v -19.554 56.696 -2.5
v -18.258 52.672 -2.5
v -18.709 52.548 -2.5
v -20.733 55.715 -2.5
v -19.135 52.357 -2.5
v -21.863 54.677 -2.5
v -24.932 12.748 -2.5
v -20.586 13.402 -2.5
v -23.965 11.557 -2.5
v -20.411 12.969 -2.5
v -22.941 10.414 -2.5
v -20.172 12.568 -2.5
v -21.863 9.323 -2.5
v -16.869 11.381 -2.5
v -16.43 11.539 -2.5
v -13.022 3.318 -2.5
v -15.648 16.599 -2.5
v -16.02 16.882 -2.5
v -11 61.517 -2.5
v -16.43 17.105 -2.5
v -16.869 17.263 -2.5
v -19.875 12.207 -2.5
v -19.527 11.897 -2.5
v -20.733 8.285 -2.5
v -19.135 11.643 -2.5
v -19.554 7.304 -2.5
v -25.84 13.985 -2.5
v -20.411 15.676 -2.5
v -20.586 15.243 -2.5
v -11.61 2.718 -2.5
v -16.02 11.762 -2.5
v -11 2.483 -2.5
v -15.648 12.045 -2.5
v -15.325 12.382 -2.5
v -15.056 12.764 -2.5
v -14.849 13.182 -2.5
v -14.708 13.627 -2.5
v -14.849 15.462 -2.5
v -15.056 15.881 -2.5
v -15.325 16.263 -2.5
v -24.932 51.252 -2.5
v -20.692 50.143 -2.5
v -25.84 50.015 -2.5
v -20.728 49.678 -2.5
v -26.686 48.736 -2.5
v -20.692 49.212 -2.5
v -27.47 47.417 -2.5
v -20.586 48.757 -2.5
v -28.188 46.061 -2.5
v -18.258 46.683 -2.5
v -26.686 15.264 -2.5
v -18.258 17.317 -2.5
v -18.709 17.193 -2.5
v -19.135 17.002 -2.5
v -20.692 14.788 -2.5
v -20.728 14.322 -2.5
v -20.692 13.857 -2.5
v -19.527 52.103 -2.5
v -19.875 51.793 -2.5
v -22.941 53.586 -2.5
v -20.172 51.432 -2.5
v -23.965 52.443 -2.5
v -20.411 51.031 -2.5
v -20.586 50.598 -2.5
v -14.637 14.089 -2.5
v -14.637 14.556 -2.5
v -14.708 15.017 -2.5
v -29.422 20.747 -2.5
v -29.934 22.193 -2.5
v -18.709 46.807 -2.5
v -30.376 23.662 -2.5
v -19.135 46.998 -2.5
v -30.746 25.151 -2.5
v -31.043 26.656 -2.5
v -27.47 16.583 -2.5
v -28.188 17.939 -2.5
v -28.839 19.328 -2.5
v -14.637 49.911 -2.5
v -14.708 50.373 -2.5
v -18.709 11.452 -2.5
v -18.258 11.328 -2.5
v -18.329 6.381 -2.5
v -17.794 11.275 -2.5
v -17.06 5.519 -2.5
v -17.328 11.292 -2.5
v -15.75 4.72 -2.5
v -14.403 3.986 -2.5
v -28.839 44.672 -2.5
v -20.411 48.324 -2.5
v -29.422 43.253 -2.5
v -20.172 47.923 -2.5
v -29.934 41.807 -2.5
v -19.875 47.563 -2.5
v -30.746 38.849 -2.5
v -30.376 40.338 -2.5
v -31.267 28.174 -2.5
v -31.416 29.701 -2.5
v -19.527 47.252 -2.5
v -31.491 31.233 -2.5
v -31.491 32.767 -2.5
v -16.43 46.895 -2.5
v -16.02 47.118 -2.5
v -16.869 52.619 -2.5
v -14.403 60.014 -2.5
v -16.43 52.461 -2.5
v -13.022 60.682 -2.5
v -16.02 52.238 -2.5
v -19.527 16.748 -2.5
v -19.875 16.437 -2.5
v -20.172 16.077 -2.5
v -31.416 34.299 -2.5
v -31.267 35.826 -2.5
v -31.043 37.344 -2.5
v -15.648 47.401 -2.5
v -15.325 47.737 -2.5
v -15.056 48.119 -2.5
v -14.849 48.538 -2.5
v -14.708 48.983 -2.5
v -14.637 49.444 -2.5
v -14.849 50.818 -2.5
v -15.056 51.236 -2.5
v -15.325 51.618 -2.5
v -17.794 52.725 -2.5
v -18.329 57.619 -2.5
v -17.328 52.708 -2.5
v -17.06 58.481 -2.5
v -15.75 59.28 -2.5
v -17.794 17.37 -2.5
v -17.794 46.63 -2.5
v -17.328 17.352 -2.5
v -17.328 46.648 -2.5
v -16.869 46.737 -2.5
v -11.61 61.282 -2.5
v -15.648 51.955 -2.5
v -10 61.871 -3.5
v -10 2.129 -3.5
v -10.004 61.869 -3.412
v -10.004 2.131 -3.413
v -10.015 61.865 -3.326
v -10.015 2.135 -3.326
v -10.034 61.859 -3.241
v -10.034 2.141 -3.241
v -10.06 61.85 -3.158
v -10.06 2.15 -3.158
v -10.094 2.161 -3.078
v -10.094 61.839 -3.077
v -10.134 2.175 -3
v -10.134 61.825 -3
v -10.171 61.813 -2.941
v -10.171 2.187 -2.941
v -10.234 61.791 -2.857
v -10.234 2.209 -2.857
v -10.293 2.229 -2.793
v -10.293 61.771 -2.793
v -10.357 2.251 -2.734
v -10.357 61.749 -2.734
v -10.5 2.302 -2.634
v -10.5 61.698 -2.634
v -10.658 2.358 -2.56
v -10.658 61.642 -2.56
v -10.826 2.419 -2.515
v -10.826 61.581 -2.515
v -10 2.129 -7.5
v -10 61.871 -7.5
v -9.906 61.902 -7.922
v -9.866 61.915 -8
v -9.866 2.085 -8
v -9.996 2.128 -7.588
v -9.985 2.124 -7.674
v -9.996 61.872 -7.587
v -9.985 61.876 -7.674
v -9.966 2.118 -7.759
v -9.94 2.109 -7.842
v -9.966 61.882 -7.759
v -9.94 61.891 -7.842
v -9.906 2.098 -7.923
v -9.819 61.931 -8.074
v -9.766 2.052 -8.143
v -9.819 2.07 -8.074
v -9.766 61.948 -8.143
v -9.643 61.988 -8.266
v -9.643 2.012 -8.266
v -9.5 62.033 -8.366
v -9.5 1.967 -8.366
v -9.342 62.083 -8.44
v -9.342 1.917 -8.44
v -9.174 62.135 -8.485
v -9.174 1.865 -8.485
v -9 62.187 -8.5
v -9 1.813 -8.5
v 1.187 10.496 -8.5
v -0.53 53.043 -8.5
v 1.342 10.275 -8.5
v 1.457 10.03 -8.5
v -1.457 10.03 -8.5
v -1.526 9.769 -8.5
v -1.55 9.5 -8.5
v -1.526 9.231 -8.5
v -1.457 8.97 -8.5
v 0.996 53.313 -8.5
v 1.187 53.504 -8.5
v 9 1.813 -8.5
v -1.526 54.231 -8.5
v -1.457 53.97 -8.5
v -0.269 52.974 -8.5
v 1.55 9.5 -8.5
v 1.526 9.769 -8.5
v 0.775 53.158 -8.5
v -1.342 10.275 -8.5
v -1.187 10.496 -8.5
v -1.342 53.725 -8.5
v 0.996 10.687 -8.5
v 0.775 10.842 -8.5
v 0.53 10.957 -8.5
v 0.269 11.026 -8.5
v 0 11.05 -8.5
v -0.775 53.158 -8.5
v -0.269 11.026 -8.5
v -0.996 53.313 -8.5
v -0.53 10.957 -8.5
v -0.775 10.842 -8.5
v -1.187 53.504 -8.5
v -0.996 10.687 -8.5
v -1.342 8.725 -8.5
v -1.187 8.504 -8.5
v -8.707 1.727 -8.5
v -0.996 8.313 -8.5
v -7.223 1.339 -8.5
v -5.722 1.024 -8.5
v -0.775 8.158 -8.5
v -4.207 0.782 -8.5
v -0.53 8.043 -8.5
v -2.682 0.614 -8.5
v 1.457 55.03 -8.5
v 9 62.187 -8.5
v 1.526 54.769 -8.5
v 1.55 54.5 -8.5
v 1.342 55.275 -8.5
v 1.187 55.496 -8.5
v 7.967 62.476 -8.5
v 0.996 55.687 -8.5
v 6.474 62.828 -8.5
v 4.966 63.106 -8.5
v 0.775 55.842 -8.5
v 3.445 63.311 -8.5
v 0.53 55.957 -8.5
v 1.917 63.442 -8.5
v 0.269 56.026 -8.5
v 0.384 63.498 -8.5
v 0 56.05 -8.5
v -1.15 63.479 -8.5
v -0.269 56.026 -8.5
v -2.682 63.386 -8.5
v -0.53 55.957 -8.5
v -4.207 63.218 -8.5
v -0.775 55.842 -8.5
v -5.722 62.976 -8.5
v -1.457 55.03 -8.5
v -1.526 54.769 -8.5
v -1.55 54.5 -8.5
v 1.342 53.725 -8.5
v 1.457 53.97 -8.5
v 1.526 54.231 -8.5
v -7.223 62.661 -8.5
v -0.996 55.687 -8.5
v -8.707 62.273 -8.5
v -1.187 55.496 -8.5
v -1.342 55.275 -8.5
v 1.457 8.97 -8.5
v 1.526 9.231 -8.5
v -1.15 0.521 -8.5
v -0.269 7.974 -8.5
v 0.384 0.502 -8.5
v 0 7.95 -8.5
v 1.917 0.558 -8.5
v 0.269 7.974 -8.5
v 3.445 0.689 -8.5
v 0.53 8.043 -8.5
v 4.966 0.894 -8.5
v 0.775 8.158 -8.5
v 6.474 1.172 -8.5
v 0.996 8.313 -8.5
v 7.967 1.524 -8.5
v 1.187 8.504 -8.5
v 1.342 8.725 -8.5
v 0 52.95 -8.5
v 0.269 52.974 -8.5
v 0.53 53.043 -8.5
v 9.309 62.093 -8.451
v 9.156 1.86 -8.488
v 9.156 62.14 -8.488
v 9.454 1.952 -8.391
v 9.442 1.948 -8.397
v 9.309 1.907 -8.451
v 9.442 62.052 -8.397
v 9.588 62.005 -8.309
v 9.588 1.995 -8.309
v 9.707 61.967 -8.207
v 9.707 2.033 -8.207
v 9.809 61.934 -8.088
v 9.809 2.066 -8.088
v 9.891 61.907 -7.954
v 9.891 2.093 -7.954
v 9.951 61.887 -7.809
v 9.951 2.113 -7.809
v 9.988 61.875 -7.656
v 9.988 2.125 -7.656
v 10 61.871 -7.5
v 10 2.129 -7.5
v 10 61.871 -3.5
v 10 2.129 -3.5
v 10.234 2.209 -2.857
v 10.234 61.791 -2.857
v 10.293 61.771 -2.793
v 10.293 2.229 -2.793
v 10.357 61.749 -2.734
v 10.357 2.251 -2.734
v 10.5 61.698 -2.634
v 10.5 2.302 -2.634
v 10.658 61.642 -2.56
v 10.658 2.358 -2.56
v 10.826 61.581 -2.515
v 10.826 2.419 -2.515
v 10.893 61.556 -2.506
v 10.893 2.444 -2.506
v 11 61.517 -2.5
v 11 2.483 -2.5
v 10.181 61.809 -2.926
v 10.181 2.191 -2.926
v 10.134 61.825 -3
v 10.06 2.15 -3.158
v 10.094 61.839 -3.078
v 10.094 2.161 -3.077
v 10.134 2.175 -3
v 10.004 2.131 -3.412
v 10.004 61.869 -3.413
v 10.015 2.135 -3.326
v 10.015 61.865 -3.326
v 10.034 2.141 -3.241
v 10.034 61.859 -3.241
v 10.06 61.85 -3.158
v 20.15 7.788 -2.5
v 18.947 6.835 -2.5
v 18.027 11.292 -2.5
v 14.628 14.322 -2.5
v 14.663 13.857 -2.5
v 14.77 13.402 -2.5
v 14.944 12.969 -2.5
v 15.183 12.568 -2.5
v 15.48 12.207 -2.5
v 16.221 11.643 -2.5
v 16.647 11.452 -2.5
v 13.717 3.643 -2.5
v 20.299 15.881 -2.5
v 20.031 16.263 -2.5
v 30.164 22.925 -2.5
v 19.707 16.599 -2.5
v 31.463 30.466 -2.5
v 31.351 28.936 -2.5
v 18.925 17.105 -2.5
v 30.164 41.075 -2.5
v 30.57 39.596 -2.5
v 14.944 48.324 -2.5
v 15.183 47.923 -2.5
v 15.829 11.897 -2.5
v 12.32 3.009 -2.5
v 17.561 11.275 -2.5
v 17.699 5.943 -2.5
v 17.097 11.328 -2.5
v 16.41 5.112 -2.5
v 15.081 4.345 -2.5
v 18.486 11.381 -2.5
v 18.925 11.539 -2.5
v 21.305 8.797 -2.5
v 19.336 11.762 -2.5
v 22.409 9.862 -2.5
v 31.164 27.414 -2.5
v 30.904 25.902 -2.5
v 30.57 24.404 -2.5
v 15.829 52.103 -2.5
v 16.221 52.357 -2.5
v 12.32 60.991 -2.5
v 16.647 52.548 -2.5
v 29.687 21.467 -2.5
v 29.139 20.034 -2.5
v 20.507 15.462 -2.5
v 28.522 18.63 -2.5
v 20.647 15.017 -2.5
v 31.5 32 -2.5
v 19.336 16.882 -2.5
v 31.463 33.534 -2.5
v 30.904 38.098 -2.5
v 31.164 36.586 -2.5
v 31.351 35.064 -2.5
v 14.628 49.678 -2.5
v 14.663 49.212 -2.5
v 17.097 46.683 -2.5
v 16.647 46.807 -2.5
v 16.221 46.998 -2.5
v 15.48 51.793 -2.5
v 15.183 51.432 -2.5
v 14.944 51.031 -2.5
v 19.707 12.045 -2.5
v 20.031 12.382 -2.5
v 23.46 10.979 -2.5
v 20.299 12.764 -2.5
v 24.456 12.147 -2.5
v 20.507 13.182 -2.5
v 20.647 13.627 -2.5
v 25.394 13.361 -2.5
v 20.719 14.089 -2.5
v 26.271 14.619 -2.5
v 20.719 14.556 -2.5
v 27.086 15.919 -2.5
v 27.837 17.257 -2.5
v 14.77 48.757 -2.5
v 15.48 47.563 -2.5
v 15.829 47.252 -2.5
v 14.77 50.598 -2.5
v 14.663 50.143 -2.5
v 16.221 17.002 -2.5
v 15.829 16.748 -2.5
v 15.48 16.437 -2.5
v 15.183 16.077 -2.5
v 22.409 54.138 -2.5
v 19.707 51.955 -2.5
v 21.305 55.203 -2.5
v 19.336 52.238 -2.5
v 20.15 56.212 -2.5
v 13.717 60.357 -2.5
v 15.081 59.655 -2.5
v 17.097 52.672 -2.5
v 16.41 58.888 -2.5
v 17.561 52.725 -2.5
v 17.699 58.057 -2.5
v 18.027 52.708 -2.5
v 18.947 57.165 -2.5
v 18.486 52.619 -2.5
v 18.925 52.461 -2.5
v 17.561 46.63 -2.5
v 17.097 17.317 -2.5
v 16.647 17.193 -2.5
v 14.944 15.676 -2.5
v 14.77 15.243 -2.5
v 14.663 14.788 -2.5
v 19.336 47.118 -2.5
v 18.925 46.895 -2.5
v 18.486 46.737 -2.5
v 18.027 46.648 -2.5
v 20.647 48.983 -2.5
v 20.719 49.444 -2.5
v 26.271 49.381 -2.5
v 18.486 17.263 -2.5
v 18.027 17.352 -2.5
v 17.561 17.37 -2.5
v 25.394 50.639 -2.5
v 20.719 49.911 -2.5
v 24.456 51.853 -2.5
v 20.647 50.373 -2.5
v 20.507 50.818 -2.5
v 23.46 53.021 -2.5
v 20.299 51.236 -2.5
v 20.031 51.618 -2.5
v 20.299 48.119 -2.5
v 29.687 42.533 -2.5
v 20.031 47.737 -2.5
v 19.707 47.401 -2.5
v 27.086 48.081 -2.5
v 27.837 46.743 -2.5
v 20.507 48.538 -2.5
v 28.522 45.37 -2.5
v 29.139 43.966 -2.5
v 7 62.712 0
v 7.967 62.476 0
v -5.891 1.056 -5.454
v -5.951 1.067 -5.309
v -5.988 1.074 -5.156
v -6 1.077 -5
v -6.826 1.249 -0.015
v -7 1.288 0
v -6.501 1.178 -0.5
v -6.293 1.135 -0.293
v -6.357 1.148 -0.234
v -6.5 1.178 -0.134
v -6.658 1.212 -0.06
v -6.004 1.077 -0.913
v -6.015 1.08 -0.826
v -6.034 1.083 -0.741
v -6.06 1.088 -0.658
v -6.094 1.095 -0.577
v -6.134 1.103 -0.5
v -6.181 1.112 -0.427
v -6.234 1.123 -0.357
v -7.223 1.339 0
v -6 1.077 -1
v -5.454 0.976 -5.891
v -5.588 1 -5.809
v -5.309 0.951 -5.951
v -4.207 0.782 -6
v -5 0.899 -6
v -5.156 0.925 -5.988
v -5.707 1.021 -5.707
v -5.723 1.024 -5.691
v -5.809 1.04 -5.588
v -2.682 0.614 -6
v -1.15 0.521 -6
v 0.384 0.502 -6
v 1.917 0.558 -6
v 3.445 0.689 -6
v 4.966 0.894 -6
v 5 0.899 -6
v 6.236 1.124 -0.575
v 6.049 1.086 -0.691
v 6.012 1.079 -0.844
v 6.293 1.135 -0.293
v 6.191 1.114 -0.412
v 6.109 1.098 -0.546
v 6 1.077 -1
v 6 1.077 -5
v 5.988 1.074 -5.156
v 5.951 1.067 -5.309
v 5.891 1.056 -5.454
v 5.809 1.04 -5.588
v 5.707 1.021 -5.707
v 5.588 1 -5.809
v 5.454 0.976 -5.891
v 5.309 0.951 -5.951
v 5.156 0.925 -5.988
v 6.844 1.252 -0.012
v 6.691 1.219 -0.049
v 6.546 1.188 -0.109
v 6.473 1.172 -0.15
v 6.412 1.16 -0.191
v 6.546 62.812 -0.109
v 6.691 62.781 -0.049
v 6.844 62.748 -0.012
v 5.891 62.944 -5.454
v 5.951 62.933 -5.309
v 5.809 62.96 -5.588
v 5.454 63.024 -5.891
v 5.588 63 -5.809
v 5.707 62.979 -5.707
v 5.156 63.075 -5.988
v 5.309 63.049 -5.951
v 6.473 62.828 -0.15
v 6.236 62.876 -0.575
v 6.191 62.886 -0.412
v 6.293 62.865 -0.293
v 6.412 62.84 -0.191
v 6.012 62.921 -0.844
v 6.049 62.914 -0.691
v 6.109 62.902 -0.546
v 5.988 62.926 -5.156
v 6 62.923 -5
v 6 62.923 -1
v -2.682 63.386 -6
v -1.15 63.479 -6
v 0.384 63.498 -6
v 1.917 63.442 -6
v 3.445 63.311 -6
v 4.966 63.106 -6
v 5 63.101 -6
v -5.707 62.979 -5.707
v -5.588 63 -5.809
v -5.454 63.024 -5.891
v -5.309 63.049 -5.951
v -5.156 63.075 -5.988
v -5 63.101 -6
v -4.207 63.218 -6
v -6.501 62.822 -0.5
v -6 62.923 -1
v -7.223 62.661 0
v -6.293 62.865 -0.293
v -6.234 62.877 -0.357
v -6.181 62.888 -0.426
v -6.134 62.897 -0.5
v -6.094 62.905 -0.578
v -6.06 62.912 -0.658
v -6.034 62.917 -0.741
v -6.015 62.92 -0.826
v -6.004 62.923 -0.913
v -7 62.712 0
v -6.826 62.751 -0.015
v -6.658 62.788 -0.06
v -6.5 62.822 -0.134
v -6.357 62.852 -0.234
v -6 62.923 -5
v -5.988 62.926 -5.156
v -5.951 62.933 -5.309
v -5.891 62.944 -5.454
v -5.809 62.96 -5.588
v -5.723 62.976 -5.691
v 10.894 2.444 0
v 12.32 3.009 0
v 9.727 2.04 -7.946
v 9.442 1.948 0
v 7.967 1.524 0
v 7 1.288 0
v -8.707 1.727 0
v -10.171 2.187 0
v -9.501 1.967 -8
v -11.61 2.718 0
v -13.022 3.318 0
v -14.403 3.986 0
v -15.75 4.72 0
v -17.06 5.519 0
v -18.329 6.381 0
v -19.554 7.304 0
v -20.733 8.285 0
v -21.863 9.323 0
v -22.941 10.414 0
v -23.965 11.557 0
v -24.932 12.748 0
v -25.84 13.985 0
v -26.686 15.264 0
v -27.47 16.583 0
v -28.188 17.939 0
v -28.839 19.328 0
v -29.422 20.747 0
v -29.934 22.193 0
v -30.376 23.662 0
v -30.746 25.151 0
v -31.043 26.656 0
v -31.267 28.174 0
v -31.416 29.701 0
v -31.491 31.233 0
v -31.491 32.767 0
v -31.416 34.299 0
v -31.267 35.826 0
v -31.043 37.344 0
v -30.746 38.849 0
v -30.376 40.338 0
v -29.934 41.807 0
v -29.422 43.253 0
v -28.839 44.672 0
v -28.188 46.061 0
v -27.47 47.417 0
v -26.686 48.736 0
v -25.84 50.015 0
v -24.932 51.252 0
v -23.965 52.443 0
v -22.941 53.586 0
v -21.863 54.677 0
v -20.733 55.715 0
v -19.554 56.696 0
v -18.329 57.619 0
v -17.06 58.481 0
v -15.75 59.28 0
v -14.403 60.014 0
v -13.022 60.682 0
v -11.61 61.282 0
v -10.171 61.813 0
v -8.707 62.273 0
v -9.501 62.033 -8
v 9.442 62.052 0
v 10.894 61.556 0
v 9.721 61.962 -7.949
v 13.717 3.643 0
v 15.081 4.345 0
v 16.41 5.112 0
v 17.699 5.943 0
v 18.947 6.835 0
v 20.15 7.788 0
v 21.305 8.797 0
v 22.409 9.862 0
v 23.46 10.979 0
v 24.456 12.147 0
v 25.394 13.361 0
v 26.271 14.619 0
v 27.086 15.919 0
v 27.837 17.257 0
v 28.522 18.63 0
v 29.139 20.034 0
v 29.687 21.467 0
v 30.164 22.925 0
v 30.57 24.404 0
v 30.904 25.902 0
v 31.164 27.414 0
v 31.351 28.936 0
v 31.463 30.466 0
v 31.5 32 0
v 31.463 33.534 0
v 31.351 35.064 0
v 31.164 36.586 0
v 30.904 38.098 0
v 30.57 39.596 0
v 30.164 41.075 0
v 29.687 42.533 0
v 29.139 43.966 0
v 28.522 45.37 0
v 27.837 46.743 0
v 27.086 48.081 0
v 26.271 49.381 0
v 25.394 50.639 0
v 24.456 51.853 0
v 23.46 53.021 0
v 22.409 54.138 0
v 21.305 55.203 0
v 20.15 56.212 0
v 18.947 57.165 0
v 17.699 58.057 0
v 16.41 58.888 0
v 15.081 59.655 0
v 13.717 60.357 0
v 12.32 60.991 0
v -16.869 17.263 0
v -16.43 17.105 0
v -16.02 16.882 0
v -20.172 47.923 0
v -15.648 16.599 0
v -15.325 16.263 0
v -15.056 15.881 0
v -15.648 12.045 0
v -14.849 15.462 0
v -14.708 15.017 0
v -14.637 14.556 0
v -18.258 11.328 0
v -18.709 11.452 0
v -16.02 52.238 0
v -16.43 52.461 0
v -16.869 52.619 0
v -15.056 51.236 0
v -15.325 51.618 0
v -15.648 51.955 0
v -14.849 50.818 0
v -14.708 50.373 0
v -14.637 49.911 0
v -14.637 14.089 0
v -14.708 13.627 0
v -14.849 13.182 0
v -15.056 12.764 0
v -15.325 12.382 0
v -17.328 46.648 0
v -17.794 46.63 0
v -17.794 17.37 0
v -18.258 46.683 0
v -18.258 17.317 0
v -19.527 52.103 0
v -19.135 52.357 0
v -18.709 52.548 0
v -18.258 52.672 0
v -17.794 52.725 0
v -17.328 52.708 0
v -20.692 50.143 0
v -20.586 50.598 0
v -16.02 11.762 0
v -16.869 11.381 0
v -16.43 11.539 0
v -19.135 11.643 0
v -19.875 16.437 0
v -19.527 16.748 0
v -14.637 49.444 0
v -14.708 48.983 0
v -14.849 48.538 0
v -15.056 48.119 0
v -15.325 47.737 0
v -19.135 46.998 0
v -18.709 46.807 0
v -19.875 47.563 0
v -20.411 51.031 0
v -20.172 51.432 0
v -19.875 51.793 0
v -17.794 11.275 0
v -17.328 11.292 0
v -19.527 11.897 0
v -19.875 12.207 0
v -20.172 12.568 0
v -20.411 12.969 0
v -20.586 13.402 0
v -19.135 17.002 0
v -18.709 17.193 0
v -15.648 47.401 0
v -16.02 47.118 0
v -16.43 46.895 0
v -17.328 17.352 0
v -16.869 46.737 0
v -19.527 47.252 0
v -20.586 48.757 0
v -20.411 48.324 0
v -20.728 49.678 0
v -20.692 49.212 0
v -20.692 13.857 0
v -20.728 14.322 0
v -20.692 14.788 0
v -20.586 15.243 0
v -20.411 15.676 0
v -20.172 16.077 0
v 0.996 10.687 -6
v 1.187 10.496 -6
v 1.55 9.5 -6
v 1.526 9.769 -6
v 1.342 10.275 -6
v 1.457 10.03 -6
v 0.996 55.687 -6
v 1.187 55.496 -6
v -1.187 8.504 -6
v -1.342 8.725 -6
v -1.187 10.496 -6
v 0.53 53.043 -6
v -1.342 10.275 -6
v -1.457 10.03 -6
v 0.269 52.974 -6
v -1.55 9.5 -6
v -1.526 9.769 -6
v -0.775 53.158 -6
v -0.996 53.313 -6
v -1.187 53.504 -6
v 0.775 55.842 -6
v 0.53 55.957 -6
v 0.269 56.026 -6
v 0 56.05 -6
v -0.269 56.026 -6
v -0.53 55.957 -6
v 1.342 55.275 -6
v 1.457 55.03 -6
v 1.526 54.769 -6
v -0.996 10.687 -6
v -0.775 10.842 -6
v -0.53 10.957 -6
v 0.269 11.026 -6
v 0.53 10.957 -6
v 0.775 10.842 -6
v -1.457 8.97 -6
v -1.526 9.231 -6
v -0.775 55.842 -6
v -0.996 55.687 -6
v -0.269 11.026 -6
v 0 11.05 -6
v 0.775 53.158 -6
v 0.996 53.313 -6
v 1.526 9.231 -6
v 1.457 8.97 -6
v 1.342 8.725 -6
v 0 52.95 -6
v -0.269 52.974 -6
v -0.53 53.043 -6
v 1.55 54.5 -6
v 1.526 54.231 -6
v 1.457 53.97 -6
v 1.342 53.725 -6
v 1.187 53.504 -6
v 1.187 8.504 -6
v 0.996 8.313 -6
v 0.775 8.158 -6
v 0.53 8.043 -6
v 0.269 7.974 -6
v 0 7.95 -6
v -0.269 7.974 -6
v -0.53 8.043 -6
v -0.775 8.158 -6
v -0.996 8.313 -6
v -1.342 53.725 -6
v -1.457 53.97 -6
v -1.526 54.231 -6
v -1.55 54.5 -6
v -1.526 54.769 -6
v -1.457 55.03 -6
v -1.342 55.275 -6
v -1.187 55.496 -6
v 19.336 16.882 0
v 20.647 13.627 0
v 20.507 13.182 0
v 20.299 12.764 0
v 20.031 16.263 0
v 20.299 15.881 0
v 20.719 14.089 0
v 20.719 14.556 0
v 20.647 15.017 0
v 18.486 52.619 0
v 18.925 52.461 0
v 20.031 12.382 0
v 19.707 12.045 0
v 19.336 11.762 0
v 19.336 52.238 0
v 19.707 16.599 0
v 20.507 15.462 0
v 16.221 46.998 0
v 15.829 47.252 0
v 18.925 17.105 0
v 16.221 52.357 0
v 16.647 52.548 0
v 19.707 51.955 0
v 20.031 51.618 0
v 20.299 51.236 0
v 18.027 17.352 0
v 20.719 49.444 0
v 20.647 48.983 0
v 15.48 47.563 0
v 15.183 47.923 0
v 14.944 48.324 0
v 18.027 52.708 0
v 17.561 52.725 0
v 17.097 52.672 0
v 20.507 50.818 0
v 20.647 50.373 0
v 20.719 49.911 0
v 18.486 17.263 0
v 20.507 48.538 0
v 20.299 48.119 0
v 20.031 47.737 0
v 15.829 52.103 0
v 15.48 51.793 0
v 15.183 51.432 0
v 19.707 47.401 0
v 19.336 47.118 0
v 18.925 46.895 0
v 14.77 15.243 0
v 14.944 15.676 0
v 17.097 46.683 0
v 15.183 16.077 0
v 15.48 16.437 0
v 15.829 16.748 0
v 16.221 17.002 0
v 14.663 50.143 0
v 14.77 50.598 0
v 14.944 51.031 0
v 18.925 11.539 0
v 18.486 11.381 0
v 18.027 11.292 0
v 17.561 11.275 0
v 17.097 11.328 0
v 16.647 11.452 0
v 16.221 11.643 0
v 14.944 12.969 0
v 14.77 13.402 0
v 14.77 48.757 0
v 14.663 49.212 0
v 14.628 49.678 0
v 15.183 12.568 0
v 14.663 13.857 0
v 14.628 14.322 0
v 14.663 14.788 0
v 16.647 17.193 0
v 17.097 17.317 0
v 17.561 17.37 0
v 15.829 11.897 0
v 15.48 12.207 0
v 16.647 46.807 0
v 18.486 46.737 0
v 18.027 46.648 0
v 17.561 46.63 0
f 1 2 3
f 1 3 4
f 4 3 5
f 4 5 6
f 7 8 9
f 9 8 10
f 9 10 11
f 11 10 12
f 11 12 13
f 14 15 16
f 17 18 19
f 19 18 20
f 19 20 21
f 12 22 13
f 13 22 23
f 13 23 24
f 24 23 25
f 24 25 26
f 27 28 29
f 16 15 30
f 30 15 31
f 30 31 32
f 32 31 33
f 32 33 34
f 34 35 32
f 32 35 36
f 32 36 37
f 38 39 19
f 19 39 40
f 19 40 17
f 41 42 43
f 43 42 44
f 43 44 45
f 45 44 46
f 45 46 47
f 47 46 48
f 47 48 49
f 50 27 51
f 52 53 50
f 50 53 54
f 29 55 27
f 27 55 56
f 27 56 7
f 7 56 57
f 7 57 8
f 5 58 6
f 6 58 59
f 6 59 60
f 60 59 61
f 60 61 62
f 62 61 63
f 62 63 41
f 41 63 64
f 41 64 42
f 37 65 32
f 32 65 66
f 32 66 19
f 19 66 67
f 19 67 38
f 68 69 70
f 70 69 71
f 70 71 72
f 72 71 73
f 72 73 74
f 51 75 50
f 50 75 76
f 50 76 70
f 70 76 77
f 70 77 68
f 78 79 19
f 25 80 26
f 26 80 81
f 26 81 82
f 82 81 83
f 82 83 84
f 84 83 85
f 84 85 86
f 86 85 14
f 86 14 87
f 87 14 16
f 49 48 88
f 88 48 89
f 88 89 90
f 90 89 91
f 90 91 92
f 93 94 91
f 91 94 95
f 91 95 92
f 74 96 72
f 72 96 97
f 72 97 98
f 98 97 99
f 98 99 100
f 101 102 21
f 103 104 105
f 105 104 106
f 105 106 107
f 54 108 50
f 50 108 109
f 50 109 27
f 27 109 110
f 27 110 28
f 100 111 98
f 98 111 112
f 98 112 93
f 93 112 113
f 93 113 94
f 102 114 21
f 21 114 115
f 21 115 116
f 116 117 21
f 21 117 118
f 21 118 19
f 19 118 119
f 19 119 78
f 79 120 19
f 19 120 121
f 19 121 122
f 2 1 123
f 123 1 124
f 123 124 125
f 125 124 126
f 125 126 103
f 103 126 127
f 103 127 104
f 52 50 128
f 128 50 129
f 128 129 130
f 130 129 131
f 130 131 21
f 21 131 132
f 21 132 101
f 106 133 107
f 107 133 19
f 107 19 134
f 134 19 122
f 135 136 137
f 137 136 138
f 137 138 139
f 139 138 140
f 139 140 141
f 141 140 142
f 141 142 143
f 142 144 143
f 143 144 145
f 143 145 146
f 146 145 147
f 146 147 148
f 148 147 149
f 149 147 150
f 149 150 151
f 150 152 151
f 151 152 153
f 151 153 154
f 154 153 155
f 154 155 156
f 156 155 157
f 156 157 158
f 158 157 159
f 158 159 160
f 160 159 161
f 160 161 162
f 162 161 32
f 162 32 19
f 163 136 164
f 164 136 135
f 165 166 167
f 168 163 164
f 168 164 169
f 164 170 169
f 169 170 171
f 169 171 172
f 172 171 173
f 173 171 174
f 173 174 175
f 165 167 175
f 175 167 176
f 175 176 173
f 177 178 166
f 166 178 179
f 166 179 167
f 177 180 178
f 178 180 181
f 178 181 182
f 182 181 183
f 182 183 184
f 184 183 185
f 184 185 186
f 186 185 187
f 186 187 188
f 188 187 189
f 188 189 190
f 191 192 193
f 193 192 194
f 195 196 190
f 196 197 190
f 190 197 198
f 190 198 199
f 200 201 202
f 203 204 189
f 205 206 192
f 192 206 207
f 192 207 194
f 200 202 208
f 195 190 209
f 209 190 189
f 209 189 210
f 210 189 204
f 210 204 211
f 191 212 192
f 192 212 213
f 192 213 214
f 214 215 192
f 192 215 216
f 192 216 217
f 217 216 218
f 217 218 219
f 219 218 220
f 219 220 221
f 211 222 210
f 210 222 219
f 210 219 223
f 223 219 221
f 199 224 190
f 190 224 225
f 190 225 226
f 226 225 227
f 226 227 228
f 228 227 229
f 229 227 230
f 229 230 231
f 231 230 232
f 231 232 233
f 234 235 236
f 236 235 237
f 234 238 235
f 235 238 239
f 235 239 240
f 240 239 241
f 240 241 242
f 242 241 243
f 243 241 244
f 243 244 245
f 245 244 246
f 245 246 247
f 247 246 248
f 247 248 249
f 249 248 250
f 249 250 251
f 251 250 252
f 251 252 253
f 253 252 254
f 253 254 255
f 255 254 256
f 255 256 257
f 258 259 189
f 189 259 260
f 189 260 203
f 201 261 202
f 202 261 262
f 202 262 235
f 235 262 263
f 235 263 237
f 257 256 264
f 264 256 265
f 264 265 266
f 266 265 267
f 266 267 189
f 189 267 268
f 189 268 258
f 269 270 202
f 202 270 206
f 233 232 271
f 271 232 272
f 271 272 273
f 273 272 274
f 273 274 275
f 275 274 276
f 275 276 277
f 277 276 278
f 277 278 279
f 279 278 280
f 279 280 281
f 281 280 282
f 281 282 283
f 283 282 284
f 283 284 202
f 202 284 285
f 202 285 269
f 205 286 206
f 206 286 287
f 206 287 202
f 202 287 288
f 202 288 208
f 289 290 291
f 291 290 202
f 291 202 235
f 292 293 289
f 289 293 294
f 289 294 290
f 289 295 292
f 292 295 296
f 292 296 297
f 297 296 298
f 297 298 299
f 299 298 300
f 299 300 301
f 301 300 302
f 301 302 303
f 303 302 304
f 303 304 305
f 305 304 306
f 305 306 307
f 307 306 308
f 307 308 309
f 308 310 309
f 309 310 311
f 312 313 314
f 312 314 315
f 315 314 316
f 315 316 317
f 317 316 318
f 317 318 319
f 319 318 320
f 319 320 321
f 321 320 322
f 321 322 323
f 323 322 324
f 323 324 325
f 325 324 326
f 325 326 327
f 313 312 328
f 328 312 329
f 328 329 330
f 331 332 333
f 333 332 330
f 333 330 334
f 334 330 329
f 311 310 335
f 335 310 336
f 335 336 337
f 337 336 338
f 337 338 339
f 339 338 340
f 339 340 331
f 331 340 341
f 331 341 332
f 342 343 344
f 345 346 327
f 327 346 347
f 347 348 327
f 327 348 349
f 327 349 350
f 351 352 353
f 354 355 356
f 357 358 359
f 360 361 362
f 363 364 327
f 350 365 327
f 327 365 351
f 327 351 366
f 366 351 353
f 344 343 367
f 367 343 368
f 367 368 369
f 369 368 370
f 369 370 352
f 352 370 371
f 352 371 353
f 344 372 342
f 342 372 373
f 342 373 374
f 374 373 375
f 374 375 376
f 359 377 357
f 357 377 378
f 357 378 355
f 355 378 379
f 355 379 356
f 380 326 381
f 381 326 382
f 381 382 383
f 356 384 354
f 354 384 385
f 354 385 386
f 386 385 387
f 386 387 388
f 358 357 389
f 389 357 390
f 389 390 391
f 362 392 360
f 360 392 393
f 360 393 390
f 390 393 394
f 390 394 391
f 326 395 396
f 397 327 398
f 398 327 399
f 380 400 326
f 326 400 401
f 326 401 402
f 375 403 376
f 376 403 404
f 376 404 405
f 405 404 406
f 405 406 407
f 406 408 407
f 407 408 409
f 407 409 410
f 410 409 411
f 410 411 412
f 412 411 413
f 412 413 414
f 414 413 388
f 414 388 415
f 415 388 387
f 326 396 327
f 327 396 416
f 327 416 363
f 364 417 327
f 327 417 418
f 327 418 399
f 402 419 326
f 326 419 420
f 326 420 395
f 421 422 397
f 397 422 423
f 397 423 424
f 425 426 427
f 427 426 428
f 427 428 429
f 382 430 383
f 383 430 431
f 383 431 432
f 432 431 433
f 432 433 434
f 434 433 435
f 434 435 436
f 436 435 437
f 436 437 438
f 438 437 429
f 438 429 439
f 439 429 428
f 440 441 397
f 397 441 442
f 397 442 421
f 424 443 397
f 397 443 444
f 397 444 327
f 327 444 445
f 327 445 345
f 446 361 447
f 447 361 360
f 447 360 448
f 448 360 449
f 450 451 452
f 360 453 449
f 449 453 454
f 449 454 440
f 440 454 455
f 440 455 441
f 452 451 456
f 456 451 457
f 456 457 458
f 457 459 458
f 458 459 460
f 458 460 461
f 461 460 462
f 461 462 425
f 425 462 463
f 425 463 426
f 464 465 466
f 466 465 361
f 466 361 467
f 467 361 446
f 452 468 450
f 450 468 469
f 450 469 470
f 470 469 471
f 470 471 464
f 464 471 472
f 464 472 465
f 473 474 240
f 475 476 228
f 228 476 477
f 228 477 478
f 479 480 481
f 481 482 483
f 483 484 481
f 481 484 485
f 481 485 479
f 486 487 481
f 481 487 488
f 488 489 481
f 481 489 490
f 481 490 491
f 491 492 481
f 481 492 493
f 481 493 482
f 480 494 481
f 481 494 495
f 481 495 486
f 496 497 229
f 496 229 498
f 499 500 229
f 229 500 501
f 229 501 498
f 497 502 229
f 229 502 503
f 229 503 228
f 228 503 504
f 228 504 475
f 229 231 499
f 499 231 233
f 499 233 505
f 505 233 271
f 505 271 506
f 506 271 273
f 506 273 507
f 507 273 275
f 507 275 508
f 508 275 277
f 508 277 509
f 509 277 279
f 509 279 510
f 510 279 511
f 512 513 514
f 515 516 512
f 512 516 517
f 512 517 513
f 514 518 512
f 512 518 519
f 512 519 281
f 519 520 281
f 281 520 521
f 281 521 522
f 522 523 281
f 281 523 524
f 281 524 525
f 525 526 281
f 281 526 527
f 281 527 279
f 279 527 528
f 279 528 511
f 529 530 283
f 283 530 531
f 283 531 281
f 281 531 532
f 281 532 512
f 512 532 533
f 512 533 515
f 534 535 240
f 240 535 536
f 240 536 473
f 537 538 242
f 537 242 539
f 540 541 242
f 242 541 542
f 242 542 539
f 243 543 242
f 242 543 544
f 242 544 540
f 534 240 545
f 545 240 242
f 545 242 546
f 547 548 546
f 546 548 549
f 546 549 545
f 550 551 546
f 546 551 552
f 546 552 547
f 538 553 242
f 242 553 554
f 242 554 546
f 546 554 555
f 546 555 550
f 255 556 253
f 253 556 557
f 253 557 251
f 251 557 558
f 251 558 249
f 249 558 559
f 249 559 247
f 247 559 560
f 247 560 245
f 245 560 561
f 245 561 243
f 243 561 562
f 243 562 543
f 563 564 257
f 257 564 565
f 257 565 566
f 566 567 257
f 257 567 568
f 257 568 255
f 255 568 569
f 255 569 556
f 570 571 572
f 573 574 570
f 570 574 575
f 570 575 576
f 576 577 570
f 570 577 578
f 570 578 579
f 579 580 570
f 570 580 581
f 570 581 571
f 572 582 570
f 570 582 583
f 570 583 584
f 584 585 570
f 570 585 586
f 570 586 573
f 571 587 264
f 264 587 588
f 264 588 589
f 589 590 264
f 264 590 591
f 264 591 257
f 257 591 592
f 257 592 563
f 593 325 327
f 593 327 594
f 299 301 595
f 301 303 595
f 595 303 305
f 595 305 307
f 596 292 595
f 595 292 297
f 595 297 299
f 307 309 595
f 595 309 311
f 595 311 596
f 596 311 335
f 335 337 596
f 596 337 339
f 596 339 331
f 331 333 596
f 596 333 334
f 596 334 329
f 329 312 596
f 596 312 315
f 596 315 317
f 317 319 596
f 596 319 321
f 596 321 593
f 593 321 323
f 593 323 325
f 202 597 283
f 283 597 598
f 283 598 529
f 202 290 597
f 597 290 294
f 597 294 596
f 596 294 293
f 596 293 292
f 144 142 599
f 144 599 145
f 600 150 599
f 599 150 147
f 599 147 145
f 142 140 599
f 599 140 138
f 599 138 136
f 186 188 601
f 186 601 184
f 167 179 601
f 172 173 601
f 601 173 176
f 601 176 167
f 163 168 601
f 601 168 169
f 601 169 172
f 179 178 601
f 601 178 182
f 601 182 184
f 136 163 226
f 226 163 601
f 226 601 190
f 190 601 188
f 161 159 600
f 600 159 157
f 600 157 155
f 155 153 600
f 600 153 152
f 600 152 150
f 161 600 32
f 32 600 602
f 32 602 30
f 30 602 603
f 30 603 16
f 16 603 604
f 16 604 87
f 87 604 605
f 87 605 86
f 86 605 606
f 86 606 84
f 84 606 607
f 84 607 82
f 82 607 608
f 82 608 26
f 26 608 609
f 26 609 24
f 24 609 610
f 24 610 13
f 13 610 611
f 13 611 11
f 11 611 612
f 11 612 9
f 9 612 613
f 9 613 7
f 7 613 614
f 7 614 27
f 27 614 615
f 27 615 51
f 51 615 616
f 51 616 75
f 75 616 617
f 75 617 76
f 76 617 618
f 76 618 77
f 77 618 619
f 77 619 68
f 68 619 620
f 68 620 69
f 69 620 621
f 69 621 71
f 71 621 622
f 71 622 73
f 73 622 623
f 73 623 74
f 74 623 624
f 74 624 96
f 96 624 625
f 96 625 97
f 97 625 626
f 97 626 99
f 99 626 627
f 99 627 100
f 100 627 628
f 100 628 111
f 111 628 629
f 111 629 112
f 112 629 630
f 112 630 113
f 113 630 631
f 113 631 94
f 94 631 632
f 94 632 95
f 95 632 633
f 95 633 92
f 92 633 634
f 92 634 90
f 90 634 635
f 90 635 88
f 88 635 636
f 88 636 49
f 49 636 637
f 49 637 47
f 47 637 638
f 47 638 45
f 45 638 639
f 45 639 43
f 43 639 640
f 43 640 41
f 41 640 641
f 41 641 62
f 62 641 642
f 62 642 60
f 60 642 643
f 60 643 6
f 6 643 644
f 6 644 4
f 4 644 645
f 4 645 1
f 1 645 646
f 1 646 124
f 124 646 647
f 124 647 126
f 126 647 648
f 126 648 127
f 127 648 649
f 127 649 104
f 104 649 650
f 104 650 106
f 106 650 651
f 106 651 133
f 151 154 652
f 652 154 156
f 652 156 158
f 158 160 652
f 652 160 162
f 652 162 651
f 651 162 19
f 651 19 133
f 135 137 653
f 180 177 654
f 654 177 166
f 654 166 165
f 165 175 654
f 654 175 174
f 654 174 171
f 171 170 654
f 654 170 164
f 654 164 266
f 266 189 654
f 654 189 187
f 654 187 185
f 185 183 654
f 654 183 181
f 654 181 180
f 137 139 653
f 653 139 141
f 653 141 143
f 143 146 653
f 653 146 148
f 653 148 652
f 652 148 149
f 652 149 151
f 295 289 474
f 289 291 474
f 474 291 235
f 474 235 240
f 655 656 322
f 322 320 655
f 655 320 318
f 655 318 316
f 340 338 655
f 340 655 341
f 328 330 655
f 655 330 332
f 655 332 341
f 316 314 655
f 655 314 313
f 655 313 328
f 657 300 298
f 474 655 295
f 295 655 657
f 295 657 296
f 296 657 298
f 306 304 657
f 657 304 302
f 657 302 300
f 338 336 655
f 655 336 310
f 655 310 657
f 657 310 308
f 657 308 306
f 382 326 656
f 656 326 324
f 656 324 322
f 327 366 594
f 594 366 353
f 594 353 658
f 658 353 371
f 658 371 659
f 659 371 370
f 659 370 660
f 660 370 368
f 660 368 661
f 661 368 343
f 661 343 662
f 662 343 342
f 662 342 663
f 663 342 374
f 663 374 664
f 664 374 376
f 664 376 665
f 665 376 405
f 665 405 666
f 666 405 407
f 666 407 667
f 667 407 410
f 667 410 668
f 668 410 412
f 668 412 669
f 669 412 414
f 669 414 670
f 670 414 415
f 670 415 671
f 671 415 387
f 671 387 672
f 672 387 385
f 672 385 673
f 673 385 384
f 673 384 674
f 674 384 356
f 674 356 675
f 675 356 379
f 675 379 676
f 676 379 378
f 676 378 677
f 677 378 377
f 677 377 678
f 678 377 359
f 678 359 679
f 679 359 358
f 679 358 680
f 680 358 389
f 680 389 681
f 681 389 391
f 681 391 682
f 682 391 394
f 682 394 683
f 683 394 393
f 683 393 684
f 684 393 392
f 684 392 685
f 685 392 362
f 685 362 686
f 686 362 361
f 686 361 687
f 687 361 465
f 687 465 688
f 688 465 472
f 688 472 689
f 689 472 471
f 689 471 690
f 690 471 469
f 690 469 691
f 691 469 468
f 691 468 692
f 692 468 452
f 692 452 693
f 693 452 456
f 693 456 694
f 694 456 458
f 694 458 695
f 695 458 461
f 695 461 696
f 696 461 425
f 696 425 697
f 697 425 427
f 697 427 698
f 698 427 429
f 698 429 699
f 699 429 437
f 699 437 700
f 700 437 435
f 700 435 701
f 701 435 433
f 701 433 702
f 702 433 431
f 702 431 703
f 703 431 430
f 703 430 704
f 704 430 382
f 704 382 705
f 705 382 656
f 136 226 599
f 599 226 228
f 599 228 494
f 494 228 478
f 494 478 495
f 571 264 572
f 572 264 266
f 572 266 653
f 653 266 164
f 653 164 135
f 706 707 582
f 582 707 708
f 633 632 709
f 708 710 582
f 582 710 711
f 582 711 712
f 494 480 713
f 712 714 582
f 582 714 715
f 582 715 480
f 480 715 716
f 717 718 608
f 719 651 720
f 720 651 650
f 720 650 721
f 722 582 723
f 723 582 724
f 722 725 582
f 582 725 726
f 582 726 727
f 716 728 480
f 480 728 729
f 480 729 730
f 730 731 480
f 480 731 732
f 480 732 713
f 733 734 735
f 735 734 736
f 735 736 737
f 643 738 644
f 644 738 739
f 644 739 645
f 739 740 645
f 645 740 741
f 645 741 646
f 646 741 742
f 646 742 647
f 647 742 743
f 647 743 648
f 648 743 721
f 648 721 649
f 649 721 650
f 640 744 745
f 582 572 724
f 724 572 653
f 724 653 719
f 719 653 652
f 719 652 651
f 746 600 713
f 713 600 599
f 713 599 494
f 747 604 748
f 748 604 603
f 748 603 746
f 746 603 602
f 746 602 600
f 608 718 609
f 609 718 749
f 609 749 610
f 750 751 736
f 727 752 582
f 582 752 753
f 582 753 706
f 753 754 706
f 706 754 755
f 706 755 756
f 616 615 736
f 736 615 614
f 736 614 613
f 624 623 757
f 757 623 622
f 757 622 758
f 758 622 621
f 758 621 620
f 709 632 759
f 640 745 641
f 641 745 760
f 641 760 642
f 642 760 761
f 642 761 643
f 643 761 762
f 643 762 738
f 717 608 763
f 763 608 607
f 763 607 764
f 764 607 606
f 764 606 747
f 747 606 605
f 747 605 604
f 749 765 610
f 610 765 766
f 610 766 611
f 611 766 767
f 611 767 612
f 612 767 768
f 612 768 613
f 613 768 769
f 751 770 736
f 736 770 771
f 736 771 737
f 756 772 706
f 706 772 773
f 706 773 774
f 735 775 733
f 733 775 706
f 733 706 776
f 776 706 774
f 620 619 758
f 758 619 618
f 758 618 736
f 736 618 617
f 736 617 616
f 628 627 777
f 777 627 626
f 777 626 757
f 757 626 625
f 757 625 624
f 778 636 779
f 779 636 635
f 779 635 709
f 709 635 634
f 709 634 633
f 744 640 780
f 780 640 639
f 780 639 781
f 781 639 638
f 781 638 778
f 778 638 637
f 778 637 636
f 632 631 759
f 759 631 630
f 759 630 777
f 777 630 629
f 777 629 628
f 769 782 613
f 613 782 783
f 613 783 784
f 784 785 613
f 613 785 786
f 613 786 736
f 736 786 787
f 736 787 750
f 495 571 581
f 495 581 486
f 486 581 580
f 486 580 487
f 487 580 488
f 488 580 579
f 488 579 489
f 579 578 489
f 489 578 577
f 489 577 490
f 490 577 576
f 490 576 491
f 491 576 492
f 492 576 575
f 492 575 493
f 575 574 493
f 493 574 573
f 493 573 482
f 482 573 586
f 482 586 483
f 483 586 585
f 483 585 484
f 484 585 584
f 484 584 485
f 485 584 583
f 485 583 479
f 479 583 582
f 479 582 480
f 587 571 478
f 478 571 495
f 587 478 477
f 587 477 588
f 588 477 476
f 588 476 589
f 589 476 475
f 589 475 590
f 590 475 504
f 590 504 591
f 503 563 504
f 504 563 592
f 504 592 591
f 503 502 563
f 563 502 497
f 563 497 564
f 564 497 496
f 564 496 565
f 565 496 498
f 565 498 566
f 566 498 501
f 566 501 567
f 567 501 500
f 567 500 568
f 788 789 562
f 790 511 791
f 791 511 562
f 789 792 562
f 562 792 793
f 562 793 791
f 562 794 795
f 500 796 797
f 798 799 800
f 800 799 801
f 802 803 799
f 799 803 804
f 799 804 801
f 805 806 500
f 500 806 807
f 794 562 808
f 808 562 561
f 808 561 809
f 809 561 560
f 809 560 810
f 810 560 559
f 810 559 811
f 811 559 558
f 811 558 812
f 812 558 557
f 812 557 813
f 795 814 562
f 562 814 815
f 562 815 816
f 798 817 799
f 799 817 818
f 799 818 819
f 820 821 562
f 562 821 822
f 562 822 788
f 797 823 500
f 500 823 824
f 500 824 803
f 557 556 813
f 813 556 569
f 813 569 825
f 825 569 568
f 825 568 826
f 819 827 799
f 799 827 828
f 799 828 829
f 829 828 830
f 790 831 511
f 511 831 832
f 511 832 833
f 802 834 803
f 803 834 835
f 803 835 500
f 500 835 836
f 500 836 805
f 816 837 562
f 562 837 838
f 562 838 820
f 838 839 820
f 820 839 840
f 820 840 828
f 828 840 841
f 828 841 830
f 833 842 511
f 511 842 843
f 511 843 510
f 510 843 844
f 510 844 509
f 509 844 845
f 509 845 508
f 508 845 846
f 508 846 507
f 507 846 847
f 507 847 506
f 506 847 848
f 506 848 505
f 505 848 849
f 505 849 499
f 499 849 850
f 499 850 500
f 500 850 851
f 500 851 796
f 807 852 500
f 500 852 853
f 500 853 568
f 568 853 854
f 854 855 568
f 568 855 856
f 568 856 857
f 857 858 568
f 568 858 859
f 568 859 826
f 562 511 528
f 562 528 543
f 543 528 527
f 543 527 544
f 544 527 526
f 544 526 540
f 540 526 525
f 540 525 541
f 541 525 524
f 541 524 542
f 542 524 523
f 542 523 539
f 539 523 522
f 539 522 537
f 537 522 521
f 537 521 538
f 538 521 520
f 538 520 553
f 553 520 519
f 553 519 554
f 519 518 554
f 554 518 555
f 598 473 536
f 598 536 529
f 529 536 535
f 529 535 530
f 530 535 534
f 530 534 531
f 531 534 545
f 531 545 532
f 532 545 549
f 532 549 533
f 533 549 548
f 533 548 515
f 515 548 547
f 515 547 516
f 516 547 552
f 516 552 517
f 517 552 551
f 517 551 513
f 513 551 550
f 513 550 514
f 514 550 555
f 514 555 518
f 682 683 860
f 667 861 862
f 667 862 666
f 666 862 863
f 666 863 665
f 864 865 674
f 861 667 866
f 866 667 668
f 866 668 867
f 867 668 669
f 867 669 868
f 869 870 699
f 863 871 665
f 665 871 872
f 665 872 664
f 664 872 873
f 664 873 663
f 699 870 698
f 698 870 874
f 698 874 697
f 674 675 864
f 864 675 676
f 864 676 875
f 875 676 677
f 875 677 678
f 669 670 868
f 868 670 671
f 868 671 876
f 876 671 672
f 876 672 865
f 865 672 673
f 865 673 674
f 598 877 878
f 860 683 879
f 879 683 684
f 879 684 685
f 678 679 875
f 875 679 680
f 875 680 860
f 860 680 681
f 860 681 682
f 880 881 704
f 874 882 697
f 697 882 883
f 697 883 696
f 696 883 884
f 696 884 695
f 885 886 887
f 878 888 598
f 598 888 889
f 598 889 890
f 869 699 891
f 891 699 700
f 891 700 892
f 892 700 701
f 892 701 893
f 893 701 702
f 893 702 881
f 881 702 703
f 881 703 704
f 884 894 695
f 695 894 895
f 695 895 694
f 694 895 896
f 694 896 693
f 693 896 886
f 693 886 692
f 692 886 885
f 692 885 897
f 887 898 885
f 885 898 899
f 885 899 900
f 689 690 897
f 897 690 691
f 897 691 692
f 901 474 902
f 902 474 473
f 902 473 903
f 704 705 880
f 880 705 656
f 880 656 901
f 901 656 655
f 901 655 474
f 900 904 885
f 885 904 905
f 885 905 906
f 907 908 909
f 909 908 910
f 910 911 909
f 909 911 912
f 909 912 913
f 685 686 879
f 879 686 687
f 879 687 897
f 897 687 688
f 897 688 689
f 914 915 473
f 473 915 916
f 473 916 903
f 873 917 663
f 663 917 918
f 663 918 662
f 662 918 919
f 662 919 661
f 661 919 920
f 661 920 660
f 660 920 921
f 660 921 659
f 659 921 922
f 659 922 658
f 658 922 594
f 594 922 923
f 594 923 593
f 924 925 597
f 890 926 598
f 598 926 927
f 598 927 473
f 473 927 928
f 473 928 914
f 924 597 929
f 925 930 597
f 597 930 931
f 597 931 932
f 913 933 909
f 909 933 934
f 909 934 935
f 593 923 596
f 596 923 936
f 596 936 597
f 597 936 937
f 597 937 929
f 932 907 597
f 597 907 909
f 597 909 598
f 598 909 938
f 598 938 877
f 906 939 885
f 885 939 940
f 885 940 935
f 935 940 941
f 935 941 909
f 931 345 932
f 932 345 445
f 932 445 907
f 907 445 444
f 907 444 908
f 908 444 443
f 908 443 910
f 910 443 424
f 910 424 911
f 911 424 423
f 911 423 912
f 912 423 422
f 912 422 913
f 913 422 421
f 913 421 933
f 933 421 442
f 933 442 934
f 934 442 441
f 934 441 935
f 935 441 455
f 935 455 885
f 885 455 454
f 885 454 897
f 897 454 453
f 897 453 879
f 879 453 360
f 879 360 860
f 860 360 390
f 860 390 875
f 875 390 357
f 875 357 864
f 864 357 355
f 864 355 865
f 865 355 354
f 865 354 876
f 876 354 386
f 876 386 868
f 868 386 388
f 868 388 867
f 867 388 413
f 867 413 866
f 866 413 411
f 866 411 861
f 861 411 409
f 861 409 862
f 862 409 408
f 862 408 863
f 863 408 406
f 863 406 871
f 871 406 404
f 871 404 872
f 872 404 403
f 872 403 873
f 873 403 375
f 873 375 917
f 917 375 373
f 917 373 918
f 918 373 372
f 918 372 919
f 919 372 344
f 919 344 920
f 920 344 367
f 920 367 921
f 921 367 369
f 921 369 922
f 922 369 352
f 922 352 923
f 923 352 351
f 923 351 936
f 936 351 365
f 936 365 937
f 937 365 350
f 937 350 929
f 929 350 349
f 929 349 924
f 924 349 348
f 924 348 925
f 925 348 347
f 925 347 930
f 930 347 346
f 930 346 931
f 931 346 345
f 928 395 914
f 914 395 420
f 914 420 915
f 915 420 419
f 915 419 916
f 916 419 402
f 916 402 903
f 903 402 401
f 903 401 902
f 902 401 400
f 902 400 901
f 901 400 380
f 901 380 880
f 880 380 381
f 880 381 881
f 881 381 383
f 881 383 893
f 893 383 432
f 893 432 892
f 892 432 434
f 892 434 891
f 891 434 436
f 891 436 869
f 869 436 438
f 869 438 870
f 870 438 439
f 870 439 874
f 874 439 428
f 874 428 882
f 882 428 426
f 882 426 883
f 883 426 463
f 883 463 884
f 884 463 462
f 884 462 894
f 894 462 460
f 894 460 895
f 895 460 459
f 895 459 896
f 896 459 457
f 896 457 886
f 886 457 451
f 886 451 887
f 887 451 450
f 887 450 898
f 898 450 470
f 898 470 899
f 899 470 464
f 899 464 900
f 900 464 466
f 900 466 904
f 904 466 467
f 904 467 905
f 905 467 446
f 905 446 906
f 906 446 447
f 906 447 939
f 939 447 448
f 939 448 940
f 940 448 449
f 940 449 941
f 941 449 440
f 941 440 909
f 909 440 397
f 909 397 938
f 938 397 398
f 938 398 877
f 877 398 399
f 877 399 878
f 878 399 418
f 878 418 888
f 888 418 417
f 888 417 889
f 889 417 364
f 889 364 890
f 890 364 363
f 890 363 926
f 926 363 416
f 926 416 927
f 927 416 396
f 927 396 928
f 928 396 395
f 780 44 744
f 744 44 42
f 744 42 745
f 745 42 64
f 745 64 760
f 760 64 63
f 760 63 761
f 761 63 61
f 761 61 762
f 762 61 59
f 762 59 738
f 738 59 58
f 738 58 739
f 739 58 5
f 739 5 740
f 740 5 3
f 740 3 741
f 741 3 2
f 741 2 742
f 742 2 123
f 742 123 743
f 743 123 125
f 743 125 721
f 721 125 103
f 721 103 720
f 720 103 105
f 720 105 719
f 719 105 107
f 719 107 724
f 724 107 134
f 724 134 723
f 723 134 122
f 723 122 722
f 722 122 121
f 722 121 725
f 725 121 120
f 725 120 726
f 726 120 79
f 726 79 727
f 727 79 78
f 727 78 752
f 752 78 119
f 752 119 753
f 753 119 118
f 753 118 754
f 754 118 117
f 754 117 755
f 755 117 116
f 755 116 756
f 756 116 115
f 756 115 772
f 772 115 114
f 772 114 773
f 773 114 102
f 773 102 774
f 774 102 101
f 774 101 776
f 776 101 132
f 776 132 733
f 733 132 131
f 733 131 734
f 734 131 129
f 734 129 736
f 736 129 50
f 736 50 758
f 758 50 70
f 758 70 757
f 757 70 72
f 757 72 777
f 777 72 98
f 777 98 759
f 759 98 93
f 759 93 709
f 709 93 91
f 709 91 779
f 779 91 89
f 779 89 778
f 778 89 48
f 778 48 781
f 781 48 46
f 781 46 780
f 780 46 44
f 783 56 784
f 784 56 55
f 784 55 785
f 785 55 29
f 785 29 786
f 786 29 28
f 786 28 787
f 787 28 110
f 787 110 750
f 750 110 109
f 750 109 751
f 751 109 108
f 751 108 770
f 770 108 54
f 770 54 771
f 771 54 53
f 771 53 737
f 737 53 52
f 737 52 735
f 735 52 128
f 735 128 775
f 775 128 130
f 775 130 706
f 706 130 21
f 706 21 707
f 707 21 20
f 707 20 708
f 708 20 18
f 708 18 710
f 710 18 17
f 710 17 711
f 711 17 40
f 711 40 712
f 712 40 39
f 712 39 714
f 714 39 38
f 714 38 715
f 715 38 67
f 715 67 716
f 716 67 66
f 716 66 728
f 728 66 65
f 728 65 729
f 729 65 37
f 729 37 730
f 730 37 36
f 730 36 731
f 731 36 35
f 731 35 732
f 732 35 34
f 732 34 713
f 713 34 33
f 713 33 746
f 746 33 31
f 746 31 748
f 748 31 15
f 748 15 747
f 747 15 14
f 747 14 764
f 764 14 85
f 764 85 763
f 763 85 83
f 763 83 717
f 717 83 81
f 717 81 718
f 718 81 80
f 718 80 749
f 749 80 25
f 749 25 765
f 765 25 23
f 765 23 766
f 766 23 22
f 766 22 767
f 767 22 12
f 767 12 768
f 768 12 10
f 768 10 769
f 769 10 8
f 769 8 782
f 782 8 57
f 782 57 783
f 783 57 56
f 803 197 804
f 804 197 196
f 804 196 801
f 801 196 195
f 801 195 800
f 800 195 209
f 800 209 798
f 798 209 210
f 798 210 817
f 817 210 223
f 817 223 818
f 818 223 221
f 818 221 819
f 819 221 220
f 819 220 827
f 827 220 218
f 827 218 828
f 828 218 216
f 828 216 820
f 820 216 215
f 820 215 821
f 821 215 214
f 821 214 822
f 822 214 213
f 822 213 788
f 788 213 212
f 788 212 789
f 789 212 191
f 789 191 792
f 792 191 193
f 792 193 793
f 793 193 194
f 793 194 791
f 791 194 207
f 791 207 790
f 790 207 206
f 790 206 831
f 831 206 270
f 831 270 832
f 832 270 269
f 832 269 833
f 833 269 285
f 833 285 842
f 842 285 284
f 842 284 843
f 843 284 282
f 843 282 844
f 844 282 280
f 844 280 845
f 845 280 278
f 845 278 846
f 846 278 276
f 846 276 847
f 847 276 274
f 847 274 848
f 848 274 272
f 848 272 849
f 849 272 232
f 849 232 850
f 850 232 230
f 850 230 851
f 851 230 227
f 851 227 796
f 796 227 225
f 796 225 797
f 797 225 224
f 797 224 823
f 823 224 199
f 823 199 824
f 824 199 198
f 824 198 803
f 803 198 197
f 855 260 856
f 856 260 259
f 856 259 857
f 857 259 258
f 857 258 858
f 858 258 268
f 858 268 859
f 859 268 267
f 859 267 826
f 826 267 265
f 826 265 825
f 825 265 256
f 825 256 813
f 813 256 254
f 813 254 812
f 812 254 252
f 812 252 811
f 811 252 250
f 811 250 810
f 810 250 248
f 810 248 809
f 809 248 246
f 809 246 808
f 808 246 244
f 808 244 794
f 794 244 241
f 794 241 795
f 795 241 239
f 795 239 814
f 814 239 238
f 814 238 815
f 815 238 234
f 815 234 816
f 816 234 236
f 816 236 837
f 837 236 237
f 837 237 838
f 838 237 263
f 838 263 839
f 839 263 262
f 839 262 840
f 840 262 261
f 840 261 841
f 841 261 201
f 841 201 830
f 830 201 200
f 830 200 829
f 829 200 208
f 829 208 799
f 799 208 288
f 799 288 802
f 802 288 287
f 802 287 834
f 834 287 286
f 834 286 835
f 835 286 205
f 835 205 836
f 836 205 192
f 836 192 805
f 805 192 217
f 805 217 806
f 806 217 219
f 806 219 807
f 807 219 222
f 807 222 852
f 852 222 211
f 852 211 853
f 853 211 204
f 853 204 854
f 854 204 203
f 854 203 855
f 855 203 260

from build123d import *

# Parameters (mm, degrees)
EXTRUDE_1_DEPTH     = 64
SKETCH_2_W          = 73.114285432
SKETCH_2_H          = 69.176673978
SKETCH_2_R          = 31.5
CUT_EXTRUDE_2_DEPTH = 64
SKETCH_3_R          = 3.05
CUT_EXTRUDE_3_DEPTH = 64
SKETCH_4_R          = 1.55
CUT_EXTRUDE_4_DEPTH = 64


with BuildPart() as part:
    # 草图1 → 凸台-拉伸1 (new body)
    with BuildSketch(Plane(origin=(0, 0, 0), x_dir=(1, 0, 0), z_dir=(0, 1, 0))):
        with BuildLine():
            Line((-32, 0), (-7, 0))
            ThreePointArc((-7, 0), (-6.292893219, 0.292893219), (-6, 1))
            Line((-6, 1), (-6, 5))
            ThreePointArc((-6, 5), (-5.707106781, 5.707106781), (-5, 6))
            Line((-5, 6), (5, 6))
            ThreePointArc((5, 6), (5.707106781, 5.707106781), (6, 5))
            Line((6, 5), (6, 1))
            ThreePointArc((6, 1), (6.292893219, 0.292893219), (7, 0))
            Line((7, 0), (32, 0))
            Line((32, 0), (32, 2.5))
            Line((32, 2.5), (11, 2.5))
            ThreePointArc((11, 2.5), (10.292893219, 2.792893219), (10, 3.5))
            Line((10, 3.5), (10, 7.5))
            ThreePointArc((10, 7.5), (9.707106781, 8.207106781), (9, 8.5))
            Line((9, 8.5), (-9, 8.5))
            ThreePointArc((-9, 8.5), (-9.707106781, 8.207106781), (-10, 7.5))
            Line((-10, 7.5), (-10, 3.5))
            ThreePointArc((-10, 3.5), (-10.292893219, 2.792893219), (-11, 2.5))
            Line((-11, 2.5), (-32, 2.5))
            Line((-32, 2.5), (-32, 0))
        make_face()
    extrude(amount=EXTRUDE_1_DEPTH)

    # 草图2 → 切除-拉伸2 (cut)
    with BuildSketch(Plane.XY):
        with Locations((0, 32)):
            Rectangle(SKETCH_2_W, SKETCH_2_H)
        with Locations(Location((0, 32, 0), (0, 0, 290.438779576))):
            Circle(SKETCH_2_R, mode=Mode.SUBTRACT)
    extrude(amount=-CUT_EXTRUDE_2_DEPTH, mode=Mode.SUBTRACT)

    # 草图3 → 切除-拉伸3 (cut)
    with BuildSketch(Plane(origin=(0, 0, -2.5), x_dir=(-1, 0, 0), z_dir=(0, 0, -1))):
        with Locations((-17.67766953, 14.32233047)):
            Circle(SKETCH_3_R)
        with Locations((-17.67766953, 49.67766953)):
            Circle(SKETCH_3_R)
        with Locations((17.67766953, 49.67766953)):
            Circle(SKETCH_3_R)
        with Locations((17.67766953, 14.32233047)):
            Circle(SKETCH_3_R)
    extrude(amount=-CUT_EXTRUDE_3_DEPTH, mode=Mode.SUBTRACT)

    # 草图4 → 切除-拉伸4 (cut)
    with BuildSketch(Plane(origin=(0, 0, -8.5), x_dir=(-1, 0, 0), z_dir=(0, 0, -1))):
        with Locations((0, 54.5)):
            Circle(SKETCH_4_R)
        with Locations((0, 9.5)):
            Circle(SKETCH_4_R)
    extrude(amount=-CUT_EXTRUDE_4_DEPTH, mode=Mode.SUBTRACT)


solid = part.part
